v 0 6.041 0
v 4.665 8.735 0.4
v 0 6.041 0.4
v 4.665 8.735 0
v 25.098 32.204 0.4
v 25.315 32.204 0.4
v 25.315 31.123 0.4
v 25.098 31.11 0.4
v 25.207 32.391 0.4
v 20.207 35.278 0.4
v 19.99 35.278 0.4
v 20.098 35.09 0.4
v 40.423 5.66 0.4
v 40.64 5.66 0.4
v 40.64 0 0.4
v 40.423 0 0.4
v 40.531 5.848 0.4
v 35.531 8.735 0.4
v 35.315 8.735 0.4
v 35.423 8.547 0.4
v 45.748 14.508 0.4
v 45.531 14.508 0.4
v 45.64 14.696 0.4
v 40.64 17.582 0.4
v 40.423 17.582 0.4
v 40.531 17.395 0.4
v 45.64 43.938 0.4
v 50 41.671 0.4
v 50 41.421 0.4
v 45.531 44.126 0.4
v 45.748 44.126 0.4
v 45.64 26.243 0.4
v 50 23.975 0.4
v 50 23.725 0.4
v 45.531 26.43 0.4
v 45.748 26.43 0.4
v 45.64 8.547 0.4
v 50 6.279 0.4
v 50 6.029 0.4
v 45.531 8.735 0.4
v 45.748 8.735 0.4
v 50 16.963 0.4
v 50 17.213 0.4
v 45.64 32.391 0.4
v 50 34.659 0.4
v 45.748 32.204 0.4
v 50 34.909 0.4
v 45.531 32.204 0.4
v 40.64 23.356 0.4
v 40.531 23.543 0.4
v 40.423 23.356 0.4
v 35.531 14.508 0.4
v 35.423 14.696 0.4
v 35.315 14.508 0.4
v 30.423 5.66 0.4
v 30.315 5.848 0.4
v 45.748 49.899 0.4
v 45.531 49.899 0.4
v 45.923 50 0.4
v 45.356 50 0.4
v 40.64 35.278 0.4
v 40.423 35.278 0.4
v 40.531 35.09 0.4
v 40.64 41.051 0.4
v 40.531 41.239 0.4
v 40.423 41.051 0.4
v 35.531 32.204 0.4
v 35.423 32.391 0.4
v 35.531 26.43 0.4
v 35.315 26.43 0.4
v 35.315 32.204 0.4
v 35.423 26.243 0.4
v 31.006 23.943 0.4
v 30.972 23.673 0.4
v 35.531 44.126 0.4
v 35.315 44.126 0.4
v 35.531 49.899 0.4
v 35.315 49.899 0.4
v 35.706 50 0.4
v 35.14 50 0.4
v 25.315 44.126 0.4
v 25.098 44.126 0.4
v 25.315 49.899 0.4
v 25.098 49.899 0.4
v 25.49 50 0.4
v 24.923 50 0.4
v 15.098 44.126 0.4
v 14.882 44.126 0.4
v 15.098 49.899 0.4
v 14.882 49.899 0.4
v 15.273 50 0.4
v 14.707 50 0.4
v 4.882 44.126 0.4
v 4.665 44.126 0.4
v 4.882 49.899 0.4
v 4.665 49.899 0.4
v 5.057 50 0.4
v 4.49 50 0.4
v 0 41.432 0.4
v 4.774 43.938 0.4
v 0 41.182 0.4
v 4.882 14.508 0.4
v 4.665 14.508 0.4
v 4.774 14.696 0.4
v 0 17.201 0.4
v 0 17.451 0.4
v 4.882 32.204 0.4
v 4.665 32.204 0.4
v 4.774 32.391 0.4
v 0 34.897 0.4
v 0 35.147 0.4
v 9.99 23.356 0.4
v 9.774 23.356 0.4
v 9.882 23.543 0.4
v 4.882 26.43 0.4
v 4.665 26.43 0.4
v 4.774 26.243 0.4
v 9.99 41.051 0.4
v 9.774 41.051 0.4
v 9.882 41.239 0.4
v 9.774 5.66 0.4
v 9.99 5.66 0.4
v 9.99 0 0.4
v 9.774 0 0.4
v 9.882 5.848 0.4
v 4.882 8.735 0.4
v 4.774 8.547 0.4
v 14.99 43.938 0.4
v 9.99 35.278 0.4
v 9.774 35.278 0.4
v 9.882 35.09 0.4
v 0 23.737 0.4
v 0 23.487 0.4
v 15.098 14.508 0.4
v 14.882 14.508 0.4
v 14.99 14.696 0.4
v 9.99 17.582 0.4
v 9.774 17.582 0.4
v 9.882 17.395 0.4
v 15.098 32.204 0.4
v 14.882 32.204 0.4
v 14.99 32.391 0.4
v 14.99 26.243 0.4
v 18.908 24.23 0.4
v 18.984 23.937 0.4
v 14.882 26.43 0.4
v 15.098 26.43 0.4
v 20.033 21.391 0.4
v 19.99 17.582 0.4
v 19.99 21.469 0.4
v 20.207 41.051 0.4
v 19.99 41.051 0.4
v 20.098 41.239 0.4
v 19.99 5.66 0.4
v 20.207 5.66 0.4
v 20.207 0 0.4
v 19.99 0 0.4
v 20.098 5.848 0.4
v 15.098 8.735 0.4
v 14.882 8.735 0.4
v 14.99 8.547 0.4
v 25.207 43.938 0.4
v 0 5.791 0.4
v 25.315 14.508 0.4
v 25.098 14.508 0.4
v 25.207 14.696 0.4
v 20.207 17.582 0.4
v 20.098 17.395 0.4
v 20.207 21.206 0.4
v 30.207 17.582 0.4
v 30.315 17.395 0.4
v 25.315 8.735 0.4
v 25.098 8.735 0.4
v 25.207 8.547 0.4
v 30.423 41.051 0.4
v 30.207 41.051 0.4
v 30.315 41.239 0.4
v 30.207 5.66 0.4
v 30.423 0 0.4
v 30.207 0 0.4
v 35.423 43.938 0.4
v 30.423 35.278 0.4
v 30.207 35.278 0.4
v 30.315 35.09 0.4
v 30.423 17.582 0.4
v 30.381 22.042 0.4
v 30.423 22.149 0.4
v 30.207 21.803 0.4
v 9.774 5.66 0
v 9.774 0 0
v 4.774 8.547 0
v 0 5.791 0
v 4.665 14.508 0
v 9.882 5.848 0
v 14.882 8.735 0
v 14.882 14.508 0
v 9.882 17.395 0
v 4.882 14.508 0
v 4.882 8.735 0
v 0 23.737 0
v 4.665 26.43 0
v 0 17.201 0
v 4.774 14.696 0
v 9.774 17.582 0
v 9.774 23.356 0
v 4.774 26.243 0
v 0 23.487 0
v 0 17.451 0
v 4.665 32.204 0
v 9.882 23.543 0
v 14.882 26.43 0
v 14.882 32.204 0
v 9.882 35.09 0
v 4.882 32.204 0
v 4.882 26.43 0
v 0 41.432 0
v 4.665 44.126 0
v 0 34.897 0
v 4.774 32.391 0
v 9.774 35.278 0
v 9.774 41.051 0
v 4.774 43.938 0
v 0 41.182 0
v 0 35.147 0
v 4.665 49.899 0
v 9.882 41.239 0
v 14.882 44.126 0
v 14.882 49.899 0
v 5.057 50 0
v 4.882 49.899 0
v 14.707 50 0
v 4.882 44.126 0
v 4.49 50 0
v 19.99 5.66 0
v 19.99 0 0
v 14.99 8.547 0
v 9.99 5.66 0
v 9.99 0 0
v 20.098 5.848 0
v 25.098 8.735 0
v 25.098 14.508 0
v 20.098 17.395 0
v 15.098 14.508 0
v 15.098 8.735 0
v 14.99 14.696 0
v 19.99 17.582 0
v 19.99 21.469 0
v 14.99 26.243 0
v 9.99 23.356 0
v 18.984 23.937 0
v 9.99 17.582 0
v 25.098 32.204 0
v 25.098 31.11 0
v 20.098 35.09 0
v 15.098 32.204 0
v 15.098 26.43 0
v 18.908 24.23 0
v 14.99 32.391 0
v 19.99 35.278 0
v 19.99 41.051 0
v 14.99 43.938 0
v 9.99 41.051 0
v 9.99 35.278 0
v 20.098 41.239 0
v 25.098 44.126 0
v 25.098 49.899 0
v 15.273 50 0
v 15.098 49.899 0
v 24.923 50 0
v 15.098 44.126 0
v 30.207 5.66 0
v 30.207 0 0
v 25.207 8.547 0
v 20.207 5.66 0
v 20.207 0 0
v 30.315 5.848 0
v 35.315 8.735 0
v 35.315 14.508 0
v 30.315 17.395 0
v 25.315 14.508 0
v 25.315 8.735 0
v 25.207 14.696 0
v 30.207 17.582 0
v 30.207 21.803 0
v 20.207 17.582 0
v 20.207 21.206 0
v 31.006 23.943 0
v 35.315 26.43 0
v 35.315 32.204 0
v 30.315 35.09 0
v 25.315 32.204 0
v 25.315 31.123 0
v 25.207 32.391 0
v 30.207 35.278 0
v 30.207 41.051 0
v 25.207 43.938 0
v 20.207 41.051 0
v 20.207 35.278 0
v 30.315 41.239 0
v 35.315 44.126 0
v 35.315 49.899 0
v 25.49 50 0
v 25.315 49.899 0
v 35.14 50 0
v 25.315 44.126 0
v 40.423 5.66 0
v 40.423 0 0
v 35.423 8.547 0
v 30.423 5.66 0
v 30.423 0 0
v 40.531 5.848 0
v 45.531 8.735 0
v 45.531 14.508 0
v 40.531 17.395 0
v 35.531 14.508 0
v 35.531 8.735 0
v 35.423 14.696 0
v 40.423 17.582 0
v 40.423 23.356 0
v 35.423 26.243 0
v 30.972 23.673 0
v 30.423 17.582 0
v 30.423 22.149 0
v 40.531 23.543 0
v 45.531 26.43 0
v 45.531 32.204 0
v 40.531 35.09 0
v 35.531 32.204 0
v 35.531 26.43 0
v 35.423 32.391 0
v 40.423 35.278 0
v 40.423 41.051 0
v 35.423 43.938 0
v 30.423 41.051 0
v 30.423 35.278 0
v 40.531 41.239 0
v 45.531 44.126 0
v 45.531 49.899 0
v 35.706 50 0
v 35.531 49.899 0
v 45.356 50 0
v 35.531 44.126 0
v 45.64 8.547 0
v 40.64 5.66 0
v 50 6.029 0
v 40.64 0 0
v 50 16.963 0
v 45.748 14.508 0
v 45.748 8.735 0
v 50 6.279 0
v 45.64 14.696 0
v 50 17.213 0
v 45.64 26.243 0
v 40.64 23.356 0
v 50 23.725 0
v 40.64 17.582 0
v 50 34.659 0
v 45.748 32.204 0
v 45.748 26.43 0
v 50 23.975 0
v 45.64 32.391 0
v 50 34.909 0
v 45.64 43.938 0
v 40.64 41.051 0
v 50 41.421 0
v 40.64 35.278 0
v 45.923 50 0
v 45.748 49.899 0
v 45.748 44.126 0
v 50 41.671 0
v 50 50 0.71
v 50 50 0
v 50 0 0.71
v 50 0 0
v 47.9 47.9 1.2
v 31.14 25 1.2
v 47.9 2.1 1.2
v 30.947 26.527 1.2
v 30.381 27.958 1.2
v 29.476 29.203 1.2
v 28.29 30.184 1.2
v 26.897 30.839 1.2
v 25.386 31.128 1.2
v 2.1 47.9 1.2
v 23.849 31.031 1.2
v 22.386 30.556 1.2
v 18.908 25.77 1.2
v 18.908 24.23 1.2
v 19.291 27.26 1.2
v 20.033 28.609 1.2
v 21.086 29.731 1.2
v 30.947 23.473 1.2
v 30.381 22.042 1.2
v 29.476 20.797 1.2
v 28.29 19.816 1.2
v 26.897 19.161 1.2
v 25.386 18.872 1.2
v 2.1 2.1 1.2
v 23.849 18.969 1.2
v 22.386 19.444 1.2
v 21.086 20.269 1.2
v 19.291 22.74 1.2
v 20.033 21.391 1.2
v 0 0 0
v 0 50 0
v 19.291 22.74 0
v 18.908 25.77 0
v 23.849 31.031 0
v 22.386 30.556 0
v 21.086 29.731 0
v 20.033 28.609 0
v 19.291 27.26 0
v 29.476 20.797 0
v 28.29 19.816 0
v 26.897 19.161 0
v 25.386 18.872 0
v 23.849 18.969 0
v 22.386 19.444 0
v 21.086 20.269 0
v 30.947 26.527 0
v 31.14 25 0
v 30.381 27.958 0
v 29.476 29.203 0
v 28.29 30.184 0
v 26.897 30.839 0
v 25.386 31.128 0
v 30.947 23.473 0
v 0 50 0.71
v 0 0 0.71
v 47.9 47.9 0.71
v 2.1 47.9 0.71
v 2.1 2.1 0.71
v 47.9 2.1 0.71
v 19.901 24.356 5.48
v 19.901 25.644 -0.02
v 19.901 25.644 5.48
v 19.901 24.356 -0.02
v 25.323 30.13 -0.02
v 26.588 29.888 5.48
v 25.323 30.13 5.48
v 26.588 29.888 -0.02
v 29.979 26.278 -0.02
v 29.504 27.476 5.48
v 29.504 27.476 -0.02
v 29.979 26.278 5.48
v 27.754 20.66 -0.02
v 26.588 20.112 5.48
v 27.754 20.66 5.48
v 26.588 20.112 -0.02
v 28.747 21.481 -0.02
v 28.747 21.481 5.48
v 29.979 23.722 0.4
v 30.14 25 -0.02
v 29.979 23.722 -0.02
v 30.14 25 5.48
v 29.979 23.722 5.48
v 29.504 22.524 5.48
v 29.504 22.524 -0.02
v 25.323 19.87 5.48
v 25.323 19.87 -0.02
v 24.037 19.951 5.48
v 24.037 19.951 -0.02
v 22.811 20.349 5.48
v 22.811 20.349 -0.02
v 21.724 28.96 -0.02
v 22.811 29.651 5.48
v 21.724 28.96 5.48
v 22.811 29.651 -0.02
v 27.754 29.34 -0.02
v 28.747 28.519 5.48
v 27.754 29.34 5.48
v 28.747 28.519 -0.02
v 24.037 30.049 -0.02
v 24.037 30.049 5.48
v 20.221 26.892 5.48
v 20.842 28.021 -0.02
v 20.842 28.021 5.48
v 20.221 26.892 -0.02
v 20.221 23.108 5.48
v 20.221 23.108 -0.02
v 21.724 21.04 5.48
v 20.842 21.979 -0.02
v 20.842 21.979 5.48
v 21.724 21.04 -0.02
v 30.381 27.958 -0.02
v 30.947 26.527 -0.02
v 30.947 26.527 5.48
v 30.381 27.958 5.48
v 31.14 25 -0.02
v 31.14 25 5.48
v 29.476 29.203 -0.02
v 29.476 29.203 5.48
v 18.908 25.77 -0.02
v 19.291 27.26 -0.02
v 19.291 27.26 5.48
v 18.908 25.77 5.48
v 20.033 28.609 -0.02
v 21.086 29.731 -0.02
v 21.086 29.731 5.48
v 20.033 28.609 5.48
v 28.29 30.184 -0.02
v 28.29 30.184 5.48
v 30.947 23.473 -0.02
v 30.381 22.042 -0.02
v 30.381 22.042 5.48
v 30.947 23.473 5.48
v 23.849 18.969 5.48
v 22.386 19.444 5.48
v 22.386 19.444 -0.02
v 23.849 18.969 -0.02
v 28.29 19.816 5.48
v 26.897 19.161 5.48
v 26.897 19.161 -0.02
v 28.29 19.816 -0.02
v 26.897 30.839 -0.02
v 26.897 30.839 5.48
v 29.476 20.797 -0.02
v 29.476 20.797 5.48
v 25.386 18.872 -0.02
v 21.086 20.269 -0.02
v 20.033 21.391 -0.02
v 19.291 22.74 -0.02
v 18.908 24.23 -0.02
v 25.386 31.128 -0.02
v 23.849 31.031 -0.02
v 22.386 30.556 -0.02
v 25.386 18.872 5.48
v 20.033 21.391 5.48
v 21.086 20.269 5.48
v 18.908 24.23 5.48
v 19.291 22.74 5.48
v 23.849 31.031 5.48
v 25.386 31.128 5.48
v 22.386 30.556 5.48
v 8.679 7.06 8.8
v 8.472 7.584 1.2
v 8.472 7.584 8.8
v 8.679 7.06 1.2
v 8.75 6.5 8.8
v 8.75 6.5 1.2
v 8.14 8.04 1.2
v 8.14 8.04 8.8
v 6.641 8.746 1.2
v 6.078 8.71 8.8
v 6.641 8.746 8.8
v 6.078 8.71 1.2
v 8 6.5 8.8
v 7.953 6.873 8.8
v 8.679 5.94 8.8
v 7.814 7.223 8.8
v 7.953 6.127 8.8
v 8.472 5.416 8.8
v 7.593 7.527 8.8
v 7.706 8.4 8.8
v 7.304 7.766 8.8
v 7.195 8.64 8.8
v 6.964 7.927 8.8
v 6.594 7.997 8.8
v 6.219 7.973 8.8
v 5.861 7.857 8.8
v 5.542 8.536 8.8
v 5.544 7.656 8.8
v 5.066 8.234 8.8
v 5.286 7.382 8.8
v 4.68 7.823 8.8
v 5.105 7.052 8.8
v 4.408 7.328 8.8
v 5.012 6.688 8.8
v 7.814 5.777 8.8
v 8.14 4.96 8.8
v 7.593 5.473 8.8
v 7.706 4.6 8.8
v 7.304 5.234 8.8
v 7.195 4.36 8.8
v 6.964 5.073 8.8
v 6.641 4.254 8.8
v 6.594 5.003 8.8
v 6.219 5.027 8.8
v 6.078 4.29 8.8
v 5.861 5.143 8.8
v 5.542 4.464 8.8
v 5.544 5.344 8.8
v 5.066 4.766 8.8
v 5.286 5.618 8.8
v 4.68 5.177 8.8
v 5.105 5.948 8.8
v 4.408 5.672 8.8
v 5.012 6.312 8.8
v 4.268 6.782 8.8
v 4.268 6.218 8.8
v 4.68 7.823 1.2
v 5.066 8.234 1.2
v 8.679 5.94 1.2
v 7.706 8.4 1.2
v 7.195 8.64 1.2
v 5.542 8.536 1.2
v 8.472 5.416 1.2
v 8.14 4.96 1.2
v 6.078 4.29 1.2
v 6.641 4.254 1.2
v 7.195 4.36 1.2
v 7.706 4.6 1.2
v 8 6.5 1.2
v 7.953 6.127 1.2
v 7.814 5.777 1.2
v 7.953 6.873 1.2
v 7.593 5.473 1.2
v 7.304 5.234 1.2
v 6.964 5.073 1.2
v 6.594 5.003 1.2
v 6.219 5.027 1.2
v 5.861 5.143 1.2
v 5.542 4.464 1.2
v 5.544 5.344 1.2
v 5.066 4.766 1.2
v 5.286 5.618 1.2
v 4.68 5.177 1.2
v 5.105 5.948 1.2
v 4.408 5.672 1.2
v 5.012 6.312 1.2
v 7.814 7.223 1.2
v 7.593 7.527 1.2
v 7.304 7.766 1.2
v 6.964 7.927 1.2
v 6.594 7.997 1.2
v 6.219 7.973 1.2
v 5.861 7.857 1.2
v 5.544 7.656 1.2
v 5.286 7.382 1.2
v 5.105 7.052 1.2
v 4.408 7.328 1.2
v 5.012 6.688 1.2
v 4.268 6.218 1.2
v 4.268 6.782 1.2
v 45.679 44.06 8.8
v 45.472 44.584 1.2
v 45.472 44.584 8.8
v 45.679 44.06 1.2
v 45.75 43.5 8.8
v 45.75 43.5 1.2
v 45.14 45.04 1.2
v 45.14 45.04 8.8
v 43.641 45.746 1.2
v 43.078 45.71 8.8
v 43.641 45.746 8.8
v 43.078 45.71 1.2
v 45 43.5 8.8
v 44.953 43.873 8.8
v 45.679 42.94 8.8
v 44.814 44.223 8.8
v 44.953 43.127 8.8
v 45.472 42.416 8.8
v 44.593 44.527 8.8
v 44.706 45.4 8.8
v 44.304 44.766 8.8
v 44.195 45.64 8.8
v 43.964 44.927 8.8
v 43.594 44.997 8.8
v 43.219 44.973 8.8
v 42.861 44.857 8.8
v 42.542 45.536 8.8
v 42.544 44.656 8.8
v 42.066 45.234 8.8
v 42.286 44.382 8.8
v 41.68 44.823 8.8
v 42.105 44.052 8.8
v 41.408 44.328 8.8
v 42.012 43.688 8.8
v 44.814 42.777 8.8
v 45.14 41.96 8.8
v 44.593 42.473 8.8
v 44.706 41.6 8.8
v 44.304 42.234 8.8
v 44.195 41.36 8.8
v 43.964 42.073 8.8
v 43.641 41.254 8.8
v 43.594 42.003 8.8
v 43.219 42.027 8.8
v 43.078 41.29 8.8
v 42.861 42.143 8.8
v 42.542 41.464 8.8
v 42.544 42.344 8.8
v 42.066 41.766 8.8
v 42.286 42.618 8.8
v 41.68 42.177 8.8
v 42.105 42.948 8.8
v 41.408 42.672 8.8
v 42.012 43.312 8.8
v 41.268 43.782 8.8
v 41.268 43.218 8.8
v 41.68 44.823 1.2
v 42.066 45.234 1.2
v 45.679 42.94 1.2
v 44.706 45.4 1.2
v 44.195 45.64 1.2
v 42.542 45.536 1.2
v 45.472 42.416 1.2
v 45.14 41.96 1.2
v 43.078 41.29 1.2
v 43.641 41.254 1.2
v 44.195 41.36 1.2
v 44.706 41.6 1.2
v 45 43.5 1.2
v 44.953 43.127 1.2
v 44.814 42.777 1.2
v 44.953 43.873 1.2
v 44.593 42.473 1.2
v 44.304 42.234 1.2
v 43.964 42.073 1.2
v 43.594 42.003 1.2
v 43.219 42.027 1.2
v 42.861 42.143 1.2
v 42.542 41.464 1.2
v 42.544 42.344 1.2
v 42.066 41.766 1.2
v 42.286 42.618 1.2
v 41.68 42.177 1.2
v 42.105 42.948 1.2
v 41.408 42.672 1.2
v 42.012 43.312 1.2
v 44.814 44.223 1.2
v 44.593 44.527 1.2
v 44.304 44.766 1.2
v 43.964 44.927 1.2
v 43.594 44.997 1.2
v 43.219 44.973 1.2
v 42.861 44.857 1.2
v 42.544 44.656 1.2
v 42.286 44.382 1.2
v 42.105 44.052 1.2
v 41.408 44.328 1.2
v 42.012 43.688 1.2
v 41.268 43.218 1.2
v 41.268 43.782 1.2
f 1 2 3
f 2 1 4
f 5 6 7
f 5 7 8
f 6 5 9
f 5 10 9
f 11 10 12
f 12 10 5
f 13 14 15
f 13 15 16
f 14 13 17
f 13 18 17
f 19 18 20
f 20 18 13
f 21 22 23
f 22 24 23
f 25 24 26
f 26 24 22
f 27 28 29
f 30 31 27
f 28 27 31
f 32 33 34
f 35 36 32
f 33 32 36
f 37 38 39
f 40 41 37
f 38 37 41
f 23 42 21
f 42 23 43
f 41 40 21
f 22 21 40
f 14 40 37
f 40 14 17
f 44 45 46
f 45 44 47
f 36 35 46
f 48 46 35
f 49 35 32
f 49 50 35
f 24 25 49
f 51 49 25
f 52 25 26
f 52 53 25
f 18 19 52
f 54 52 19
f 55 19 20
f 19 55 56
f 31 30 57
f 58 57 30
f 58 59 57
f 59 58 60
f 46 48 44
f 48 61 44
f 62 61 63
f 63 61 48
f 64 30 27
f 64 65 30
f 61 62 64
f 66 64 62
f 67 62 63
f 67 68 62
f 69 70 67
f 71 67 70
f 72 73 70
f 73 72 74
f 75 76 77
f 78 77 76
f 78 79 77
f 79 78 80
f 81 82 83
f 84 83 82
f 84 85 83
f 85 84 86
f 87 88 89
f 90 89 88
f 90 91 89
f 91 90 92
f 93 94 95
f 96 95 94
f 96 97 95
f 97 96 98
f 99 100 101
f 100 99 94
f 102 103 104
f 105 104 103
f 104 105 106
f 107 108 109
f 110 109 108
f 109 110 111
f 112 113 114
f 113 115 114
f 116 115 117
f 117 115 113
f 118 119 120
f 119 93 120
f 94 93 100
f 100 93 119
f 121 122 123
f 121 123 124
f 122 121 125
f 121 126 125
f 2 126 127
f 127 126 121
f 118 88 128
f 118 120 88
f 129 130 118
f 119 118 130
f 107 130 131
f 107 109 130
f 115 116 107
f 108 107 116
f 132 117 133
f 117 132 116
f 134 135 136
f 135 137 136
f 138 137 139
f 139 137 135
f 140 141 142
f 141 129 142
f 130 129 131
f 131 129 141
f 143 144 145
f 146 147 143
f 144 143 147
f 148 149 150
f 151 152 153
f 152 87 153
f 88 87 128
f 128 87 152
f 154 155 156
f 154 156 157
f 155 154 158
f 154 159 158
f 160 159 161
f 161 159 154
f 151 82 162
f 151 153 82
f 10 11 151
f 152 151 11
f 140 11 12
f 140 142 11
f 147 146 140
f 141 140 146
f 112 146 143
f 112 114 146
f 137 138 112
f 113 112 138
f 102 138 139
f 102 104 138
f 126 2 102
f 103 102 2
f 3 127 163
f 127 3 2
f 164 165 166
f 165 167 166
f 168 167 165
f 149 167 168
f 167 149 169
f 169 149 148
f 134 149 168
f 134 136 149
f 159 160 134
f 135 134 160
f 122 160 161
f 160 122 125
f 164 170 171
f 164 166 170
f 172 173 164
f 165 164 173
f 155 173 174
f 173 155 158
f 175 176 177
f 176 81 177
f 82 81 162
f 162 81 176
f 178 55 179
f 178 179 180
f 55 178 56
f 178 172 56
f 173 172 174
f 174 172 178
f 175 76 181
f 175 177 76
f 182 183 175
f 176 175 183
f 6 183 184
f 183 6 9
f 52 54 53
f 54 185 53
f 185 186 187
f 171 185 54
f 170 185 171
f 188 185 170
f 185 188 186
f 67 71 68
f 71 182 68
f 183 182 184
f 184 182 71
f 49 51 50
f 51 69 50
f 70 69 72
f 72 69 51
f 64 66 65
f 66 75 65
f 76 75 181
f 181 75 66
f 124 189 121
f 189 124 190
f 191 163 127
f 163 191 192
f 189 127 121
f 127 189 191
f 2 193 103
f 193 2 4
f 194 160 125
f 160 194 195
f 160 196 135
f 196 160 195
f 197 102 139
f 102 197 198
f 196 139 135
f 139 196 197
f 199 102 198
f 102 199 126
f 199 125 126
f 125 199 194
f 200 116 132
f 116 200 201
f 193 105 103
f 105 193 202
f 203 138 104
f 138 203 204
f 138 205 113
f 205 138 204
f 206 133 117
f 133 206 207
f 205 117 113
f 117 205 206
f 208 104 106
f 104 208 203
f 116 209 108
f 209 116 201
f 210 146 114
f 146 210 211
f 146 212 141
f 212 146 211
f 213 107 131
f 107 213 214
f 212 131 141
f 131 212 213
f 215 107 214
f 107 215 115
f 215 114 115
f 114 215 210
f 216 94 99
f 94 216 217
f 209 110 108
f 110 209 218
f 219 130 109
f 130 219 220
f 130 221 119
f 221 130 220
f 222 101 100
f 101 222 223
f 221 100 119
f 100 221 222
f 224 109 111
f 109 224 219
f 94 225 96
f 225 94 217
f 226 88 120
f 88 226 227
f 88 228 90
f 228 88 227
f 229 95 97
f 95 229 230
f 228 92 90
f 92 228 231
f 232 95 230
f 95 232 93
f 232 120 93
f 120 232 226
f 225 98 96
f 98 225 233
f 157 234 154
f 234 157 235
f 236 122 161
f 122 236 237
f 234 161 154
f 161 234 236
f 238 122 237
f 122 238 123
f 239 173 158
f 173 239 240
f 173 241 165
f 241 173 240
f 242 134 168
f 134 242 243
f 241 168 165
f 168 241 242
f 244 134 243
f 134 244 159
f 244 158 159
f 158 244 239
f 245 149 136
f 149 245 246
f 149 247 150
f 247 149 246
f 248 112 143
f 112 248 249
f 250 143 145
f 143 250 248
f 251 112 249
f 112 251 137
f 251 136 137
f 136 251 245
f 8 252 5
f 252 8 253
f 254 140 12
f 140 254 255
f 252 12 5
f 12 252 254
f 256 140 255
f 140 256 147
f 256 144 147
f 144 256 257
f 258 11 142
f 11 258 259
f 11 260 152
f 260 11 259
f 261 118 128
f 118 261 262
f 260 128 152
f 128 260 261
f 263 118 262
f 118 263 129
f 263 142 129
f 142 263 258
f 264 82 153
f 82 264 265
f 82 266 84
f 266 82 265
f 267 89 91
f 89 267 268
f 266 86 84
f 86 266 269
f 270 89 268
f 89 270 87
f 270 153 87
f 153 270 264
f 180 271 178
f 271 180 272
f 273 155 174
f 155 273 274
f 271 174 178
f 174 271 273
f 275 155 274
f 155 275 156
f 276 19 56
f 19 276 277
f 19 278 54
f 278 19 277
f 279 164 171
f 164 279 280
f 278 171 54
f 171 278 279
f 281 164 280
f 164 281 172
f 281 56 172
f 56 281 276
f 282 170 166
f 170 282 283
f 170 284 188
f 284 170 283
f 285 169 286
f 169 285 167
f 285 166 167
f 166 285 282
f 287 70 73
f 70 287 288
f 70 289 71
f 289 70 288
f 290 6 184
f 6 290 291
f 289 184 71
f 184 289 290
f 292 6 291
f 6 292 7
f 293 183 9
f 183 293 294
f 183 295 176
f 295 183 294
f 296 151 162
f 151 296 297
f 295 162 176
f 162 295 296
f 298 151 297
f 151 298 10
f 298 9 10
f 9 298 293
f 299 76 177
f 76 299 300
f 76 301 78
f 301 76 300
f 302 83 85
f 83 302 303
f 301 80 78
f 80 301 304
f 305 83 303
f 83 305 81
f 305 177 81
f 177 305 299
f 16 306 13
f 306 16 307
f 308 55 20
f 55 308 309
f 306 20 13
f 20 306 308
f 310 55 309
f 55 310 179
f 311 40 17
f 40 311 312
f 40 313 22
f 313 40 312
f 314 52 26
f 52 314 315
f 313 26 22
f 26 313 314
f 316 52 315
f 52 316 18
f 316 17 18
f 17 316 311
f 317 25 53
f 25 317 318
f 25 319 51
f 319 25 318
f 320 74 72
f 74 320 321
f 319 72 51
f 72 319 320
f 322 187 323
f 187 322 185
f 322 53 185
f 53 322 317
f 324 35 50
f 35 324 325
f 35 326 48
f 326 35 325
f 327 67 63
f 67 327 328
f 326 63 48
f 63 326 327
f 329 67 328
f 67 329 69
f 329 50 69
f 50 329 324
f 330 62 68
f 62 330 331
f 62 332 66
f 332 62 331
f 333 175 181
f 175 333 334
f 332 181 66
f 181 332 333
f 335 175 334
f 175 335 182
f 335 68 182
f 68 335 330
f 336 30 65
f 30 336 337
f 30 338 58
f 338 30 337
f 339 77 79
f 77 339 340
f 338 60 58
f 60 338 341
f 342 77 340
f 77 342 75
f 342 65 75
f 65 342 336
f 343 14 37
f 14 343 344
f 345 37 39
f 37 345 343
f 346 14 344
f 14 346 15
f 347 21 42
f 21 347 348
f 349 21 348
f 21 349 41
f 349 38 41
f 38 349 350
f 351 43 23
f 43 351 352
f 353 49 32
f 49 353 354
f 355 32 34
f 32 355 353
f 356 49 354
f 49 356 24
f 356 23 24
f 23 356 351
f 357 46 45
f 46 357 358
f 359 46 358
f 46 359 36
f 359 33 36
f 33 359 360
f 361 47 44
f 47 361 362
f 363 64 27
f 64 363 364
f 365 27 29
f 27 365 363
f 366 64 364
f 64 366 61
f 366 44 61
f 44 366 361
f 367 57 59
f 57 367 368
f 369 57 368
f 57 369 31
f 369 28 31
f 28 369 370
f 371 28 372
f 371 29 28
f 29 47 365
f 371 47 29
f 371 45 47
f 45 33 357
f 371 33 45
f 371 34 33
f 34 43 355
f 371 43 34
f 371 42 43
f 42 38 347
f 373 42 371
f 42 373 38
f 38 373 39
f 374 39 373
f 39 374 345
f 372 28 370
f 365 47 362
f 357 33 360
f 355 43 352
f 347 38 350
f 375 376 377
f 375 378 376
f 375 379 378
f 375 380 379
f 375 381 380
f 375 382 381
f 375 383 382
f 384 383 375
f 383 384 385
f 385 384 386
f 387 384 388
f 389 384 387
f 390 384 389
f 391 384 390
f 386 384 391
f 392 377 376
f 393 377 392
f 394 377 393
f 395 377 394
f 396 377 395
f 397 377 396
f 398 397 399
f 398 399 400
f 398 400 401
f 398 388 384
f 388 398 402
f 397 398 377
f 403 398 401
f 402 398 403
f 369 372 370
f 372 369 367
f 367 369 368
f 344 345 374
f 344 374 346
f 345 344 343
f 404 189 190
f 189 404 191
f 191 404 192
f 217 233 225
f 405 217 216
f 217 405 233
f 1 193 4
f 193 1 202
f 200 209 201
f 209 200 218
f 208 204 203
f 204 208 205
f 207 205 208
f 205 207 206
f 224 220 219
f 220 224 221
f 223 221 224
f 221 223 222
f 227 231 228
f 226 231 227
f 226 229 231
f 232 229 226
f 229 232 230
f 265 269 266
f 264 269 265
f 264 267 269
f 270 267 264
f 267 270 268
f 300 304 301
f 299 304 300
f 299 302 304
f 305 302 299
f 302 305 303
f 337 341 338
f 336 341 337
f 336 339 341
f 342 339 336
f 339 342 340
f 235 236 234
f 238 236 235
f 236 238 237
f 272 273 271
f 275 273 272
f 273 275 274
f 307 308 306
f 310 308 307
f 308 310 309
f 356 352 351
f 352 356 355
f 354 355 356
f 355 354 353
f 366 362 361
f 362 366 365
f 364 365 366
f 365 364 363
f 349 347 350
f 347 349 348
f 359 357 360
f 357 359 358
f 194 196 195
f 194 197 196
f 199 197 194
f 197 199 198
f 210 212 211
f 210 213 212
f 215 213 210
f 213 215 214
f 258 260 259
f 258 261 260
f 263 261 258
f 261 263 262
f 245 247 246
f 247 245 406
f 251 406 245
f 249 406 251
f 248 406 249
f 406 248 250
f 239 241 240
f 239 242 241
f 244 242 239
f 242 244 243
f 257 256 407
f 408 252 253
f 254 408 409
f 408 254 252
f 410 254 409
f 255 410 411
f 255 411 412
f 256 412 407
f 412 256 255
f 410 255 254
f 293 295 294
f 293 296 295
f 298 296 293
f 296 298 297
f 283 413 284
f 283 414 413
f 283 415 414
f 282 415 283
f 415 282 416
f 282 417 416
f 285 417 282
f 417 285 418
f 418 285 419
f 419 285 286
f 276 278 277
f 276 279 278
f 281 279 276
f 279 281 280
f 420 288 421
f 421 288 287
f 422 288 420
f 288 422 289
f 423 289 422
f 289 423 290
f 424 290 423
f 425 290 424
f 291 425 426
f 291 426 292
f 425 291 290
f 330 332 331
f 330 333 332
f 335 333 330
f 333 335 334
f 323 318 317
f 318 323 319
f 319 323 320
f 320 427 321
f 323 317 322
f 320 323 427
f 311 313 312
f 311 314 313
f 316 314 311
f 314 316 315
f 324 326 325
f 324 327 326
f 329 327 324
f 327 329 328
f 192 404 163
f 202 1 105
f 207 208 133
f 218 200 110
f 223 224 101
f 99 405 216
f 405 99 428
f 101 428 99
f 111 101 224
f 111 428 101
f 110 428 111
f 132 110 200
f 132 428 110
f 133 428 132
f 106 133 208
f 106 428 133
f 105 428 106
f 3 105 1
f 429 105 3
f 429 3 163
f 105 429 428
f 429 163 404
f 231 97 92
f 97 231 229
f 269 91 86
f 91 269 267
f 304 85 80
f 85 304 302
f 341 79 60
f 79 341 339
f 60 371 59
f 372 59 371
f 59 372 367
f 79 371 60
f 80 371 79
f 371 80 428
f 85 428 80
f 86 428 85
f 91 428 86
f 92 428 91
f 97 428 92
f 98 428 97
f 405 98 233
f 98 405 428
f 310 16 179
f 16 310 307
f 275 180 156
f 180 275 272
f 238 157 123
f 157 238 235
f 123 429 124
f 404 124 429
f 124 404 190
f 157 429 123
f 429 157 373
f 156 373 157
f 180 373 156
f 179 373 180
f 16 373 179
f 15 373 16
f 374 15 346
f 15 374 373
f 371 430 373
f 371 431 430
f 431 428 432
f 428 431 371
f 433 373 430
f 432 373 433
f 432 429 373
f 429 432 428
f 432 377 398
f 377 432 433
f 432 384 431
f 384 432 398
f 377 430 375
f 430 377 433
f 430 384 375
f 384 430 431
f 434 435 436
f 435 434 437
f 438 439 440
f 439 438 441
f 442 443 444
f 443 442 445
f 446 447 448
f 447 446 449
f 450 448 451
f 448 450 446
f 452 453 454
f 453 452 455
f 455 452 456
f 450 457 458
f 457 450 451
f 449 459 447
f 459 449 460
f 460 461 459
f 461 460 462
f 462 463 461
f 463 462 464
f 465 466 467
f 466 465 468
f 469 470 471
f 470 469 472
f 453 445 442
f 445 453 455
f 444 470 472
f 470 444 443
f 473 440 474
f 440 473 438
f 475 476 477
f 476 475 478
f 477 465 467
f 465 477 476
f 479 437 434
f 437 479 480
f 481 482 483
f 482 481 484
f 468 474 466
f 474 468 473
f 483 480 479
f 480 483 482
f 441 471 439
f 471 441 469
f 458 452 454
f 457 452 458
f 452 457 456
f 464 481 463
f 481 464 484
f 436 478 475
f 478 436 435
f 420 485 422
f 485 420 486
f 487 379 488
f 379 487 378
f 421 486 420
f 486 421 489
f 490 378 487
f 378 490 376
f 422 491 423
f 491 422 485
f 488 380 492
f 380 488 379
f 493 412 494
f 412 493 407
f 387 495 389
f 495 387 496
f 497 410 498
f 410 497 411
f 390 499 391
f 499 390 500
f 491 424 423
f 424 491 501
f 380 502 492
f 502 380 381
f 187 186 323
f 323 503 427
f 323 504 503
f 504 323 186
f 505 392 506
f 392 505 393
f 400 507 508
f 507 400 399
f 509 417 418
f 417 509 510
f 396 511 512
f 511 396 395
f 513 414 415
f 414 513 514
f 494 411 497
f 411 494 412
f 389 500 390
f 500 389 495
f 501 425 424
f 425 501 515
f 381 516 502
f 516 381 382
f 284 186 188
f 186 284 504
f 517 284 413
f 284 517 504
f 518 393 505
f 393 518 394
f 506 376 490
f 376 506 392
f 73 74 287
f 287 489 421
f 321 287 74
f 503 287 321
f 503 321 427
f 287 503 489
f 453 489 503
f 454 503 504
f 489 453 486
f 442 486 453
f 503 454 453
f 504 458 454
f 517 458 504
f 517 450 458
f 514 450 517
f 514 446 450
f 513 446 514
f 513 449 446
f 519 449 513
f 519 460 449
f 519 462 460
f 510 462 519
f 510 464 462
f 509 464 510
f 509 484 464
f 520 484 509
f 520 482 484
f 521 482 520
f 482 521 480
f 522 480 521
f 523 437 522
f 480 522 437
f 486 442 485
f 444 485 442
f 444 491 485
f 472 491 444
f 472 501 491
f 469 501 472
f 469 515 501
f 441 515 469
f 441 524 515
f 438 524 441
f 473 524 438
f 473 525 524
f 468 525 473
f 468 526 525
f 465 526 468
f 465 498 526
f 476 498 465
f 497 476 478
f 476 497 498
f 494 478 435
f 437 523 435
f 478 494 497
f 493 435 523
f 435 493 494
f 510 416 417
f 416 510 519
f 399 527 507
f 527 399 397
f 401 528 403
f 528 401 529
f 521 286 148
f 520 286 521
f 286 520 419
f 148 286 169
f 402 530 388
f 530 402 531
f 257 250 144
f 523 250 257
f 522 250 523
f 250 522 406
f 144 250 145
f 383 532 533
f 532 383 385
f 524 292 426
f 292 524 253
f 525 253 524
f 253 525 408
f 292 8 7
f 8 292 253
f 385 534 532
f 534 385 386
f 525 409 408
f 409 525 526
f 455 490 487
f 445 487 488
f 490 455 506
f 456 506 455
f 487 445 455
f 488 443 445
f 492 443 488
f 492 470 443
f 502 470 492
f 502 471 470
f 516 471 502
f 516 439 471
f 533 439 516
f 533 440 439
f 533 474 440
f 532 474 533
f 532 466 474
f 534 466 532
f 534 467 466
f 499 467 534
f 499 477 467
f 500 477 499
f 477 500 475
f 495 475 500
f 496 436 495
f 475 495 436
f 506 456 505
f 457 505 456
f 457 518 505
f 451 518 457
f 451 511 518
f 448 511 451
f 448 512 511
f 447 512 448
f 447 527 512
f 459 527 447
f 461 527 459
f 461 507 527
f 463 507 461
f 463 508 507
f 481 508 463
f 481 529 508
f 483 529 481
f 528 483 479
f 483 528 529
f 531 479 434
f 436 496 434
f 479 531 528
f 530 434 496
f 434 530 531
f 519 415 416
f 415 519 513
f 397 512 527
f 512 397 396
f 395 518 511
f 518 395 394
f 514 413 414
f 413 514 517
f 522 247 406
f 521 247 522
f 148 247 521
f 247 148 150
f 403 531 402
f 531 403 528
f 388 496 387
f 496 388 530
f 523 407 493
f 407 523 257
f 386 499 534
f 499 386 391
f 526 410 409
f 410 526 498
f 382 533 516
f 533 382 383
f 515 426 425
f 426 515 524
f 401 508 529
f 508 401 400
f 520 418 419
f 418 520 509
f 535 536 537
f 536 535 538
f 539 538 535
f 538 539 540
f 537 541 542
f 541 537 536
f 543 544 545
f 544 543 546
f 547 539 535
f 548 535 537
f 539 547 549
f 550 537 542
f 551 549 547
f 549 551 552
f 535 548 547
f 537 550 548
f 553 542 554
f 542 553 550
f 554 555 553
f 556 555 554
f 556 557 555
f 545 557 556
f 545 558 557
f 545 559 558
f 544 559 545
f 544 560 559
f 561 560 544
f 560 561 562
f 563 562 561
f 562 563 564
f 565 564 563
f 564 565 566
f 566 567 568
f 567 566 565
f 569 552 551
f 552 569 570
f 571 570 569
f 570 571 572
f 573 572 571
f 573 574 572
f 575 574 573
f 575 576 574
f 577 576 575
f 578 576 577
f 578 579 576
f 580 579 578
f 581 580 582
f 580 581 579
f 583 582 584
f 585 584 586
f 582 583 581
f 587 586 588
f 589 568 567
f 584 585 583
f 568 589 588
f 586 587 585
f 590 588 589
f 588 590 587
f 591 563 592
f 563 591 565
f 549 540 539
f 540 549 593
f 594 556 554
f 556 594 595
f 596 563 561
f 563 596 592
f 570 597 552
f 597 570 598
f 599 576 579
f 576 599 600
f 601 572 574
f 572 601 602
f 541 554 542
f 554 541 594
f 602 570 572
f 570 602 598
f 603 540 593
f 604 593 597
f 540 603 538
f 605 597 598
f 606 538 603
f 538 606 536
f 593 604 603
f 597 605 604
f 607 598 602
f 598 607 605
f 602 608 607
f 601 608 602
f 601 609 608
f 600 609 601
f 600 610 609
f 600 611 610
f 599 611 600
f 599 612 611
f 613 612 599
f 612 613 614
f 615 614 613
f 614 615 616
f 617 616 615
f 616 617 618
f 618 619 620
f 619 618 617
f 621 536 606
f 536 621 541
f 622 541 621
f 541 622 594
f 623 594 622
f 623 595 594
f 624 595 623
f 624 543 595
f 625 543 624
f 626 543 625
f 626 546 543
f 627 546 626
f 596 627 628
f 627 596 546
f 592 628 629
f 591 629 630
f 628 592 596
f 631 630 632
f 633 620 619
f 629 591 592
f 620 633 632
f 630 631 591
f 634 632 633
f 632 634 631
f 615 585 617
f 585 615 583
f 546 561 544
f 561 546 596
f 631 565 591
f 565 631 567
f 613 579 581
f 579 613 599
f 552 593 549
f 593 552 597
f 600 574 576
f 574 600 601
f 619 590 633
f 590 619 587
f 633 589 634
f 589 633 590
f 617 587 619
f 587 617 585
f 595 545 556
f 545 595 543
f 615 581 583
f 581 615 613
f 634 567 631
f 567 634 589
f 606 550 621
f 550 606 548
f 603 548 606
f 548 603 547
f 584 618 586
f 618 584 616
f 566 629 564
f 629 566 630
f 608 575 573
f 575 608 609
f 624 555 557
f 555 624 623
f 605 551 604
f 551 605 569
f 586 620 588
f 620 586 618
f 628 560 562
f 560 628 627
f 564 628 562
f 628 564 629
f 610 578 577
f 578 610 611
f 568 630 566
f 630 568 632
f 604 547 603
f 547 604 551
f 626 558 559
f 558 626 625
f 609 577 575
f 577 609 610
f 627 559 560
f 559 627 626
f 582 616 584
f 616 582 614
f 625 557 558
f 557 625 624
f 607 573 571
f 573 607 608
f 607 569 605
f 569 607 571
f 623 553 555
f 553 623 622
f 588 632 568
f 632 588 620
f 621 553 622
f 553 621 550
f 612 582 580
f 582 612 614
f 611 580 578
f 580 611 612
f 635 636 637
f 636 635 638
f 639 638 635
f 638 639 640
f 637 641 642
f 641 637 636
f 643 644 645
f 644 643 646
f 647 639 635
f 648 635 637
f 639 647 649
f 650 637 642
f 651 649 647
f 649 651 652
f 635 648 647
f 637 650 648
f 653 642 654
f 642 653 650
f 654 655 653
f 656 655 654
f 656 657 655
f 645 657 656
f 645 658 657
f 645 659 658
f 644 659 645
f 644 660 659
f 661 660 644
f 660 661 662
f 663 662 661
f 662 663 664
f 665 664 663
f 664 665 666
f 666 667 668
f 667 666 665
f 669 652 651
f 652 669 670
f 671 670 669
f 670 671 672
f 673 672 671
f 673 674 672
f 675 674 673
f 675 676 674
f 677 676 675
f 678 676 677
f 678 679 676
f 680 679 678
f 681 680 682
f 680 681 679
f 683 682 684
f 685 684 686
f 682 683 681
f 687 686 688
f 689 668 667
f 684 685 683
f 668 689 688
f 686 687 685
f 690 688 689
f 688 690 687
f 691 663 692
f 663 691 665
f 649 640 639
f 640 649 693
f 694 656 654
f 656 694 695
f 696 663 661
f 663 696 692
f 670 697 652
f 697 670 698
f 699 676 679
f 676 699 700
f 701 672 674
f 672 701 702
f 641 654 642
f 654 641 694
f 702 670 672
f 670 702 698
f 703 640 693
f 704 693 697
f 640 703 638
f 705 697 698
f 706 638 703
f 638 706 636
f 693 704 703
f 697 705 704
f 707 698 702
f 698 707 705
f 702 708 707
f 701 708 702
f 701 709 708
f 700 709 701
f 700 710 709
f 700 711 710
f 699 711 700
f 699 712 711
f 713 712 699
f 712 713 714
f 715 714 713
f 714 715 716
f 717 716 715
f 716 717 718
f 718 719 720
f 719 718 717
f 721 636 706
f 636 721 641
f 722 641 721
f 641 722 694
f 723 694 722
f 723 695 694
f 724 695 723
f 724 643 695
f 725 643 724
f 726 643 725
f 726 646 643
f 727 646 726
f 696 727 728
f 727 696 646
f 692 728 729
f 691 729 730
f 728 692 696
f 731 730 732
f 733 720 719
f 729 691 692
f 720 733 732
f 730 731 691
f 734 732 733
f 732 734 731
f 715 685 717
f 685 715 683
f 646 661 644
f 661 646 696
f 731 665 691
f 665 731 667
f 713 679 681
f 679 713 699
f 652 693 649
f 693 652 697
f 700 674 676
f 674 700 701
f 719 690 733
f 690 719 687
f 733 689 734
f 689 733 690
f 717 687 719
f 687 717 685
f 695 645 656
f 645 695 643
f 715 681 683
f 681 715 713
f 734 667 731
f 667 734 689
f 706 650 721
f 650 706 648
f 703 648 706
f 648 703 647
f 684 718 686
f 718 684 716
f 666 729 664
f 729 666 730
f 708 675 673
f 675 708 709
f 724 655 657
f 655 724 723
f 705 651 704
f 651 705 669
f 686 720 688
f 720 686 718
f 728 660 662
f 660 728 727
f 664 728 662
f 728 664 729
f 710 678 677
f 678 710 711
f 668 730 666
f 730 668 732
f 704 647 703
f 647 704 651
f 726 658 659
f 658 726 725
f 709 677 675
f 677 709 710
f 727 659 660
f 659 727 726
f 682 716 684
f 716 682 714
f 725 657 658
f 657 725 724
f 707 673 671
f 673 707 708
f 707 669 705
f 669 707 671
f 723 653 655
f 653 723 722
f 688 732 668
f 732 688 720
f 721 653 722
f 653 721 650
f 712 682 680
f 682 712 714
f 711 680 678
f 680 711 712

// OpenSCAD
module hex(hole, wall, thick){
    hole = hole;
    wall = wall;
    difference(){
        rotate([0, 0, 30]) cylinder(d = (hole + wall), h = thick, $fn = 6);
        translate([0, 0, -0.1]) rotate([0, 0, 30]) cylinder(d = hole, h = thick + 0.2, $fn = 6);
    }
}


// first arg is vector that defines the bounding box, length, width, height
// second arg in the 'diameter' of the holes. In OpenScad, this refers to the corner-to-corner diameter, not flat-to-flat
// this diameter is 2/sqrt(3) times larger than flat to flat
// third arg is wall thickness.  This also is measured that the corners, not the flats. 
module hexgrid(box, holediameter, wallthickness) {
    a = (holediameter + (wallthickness/2))*sin(60);
    for(x = [holediameter/2: a: box[0]]) {
        for(y = [holediameter/2: 2*a*sin(60): box[1]]) {
            translate([x, y, 0]) hex(holediameter, wallthickness, box[2]);
            translate([x + a*cos(60), y + a*sin(60), 0]) hex(holediameter, wallthickness, box[2]);

        }
    }
        
}


$sq = 50;
$top = 1.2;
$hole = 10.28;


module standoff(x,y,conn){
    translate([x,y,$top]){
        $m3 = 3;
        $extra = 1.5 + $m3;
        $h = conn - $top;
        difference(){
            cylinder(d=$extra,h=$h,$fn=25);
            translate([0,0,-.001])cylinder(d=$m3,h=$h+.2,$fn=25);
        }
    }
}

module square(x,y,conn){
    translate([x,y,0])union(){
        difference(){
            // main square
            cube([$sq,$sq,$top]);
            // hex inlay
            translate([-1,-3,-1])hexgrid([60, 60, 1.4], 11.5470053838, 0.5);
            // 4 insets for frame
            translate([-.1,-.1,.71]){cube([$sq+.2,2.2,.5]);};
            translate([-.1,-.1,.71]){cube([2.2,$sq+.2,.5]);};
            translate([$sq-2.1,-.1,.71]){cube([2.2,$sq+.2,.5]);};
            translate([-.1,$sq-2.1,.71]){cube([$sq+.2,2.2,.5]);};
            // center hole
            translate([$sq/2,$sq/2,-.01])cylinder(d=$hole,h=10,$fn=25);
        }
        standoff(6.5,6.5,conn);
        standoff(41+2.5,41+2.5,conn);
        // center hole surround
        difference(){
            translate([$sq/2,$sq/2,-.02])cylinder(d=$hole+2,h=5.5,$fn=25);
            translate([$sq/2,$sq/2,-.03])cylinder(d=$hole,h=10,$fn=25);
        }
    }
}

// connectors are slightly different heights. one is 5mm, other is 5.8
color("gray")square(0,0,8.8);
//color("white")square(60,0,5.8);
